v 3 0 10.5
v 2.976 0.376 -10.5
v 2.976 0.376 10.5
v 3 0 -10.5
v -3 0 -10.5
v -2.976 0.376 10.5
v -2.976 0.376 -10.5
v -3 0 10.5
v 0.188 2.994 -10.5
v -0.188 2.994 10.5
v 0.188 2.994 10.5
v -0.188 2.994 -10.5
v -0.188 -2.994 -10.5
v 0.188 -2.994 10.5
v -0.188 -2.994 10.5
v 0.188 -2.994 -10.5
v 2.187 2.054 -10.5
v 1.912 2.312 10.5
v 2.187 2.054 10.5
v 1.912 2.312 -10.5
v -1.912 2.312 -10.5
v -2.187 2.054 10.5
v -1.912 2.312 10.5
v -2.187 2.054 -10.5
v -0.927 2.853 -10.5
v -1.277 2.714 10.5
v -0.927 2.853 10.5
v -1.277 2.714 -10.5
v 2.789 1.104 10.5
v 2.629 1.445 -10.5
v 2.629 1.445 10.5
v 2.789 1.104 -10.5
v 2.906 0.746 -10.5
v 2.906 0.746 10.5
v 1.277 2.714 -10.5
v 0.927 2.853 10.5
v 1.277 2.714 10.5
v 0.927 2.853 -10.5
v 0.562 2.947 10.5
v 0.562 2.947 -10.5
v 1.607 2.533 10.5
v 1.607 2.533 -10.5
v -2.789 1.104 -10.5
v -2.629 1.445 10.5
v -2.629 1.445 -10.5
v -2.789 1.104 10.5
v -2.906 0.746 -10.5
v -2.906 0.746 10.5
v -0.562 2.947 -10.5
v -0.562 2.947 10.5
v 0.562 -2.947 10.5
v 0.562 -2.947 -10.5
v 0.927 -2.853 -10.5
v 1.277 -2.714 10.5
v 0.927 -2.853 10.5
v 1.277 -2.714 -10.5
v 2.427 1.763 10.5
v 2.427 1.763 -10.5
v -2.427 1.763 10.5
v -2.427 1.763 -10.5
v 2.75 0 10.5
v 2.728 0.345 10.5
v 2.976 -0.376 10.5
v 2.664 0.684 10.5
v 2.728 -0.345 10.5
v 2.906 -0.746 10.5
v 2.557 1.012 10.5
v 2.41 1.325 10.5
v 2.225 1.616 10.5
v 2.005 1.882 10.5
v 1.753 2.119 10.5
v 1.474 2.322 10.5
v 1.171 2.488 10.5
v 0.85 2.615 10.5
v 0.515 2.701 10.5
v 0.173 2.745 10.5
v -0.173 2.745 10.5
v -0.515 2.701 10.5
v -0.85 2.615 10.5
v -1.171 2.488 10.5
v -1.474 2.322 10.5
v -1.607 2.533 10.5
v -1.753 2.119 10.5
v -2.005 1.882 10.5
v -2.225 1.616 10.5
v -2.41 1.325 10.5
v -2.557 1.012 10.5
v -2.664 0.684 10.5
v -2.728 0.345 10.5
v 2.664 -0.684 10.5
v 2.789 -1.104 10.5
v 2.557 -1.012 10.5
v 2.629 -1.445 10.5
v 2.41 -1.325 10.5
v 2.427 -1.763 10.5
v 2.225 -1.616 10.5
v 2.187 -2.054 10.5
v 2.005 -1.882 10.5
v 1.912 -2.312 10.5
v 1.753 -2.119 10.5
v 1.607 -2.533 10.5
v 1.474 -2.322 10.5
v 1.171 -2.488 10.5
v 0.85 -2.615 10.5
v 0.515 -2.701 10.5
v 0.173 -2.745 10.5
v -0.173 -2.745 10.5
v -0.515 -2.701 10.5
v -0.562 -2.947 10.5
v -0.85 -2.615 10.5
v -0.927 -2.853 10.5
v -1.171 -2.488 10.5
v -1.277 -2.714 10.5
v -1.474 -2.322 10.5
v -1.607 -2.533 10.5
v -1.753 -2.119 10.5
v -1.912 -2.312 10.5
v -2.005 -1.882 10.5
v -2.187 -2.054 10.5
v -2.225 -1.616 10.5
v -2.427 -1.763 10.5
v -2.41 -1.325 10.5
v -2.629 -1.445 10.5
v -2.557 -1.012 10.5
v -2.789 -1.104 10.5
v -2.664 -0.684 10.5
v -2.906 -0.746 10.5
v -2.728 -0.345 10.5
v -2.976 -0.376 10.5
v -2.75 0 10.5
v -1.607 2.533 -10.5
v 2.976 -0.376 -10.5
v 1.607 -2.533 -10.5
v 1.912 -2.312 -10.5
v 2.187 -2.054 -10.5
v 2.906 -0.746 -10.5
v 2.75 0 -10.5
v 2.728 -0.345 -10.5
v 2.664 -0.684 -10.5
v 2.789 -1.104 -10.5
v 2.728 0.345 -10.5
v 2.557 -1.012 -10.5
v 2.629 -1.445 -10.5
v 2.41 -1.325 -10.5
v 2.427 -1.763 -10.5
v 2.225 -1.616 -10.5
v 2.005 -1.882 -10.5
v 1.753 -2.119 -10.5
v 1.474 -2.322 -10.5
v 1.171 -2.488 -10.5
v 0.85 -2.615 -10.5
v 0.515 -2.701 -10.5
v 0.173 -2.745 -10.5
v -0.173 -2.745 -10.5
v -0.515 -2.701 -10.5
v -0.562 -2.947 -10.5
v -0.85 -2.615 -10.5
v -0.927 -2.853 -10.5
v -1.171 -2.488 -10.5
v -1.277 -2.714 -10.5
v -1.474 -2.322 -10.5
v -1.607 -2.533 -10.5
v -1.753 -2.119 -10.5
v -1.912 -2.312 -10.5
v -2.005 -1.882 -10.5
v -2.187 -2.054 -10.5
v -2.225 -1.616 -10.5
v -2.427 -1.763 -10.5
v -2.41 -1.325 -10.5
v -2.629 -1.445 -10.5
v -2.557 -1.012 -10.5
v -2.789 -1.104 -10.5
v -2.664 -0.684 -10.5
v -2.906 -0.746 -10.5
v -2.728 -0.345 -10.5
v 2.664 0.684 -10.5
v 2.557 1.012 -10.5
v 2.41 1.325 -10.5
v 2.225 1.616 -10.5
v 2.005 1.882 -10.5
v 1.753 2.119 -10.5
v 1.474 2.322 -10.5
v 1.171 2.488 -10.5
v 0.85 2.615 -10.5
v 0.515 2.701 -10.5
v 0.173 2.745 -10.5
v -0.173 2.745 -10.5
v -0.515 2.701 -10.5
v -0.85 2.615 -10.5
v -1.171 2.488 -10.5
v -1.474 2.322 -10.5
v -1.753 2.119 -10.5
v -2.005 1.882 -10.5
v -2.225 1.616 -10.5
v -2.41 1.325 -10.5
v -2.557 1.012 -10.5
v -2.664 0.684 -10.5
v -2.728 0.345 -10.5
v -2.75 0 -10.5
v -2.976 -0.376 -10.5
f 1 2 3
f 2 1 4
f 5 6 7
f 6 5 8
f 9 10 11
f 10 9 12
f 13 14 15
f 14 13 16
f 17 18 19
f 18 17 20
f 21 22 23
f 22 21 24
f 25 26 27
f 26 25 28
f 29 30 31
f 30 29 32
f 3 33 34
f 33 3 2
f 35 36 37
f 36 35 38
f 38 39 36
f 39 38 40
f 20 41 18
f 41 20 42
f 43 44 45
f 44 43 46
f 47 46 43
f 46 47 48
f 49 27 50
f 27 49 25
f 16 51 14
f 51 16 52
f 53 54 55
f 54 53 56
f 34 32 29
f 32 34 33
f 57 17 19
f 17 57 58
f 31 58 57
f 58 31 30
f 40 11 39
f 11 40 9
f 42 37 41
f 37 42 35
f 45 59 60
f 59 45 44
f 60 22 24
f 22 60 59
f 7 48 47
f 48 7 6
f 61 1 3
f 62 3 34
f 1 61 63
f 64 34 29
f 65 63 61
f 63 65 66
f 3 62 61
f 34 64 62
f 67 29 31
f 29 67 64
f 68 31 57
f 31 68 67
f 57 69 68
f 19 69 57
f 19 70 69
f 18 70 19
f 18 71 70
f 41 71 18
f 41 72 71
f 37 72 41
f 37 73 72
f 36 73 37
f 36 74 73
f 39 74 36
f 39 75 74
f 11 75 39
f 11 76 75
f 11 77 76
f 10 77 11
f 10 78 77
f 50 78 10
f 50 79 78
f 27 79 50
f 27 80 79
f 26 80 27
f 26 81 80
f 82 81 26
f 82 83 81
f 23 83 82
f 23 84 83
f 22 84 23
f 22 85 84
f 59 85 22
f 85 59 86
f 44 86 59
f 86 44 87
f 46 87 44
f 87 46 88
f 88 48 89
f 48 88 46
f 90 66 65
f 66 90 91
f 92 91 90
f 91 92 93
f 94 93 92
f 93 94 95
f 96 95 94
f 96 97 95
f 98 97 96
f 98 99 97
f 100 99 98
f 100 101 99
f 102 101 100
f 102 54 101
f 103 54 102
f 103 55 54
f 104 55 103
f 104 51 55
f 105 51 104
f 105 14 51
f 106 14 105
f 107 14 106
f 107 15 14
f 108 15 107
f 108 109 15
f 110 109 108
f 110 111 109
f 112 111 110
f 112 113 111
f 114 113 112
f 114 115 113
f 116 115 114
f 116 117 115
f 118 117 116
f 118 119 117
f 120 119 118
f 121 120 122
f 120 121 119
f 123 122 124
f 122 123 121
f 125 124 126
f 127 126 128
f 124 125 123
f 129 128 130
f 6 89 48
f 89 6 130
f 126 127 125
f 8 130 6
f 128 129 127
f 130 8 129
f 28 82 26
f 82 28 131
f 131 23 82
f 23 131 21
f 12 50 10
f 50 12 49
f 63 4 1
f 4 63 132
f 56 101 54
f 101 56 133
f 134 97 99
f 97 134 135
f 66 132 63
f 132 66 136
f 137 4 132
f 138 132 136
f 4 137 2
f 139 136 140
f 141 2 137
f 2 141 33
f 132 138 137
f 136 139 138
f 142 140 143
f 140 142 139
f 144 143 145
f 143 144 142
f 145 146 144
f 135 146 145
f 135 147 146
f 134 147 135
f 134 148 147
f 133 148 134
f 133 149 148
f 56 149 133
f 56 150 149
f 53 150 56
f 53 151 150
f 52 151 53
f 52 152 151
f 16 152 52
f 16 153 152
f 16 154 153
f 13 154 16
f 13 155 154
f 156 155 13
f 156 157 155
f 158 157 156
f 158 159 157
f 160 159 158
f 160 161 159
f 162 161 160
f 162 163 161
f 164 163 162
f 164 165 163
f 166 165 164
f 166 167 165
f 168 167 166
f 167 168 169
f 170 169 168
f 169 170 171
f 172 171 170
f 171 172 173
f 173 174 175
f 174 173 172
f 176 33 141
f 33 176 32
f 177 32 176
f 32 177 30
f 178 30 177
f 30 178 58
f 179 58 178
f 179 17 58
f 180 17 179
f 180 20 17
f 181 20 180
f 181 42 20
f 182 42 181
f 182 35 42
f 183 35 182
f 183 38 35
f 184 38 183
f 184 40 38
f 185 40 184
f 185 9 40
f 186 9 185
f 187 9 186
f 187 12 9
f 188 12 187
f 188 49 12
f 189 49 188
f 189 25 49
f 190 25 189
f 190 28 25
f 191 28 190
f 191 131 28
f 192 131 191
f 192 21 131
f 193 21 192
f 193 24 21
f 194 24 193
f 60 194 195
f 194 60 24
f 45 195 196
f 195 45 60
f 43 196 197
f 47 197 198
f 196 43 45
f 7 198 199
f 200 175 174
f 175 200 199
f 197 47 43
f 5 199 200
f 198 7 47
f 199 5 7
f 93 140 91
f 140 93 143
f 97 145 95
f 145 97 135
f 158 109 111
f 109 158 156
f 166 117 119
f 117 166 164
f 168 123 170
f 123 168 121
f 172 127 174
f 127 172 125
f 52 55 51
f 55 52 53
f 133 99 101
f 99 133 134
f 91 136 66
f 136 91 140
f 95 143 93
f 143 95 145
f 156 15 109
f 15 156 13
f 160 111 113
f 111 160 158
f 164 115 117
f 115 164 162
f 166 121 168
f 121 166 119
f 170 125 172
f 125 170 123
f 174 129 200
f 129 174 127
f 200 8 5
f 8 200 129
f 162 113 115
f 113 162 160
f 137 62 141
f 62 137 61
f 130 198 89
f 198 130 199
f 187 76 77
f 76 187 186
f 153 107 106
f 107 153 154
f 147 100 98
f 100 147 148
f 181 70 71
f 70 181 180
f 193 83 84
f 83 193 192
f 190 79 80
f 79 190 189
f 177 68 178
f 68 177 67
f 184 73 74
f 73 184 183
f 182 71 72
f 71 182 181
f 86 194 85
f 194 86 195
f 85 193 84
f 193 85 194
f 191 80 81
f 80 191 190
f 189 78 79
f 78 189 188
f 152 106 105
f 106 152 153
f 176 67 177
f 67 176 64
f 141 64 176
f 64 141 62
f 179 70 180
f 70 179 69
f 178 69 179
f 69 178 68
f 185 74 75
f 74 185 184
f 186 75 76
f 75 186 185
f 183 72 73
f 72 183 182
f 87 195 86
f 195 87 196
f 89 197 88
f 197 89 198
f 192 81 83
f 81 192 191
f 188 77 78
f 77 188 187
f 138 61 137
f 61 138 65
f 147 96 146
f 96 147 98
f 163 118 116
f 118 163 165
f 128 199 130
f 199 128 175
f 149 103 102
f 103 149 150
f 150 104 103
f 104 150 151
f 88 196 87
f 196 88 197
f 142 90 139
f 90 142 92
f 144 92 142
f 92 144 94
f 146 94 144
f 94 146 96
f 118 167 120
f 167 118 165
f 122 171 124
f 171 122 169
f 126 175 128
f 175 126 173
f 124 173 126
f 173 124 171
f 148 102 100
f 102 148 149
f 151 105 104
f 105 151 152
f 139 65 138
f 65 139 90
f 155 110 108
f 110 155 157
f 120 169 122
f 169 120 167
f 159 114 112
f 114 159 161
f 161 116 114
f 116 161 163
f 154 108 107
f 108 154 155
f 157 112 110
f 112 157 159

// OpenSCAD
$fn = 50;


difference() {
	union() {
		translate(v = [0, 0, -10.5000000000]) {
			cylinder(h = 21, r = 3.0000000000);
		}
	}
	union() {
		translate(v = [0, 0, -100.0000000000]) {
			cylinder(h = 200, r = 2.7500000000);
		}
	}
}
